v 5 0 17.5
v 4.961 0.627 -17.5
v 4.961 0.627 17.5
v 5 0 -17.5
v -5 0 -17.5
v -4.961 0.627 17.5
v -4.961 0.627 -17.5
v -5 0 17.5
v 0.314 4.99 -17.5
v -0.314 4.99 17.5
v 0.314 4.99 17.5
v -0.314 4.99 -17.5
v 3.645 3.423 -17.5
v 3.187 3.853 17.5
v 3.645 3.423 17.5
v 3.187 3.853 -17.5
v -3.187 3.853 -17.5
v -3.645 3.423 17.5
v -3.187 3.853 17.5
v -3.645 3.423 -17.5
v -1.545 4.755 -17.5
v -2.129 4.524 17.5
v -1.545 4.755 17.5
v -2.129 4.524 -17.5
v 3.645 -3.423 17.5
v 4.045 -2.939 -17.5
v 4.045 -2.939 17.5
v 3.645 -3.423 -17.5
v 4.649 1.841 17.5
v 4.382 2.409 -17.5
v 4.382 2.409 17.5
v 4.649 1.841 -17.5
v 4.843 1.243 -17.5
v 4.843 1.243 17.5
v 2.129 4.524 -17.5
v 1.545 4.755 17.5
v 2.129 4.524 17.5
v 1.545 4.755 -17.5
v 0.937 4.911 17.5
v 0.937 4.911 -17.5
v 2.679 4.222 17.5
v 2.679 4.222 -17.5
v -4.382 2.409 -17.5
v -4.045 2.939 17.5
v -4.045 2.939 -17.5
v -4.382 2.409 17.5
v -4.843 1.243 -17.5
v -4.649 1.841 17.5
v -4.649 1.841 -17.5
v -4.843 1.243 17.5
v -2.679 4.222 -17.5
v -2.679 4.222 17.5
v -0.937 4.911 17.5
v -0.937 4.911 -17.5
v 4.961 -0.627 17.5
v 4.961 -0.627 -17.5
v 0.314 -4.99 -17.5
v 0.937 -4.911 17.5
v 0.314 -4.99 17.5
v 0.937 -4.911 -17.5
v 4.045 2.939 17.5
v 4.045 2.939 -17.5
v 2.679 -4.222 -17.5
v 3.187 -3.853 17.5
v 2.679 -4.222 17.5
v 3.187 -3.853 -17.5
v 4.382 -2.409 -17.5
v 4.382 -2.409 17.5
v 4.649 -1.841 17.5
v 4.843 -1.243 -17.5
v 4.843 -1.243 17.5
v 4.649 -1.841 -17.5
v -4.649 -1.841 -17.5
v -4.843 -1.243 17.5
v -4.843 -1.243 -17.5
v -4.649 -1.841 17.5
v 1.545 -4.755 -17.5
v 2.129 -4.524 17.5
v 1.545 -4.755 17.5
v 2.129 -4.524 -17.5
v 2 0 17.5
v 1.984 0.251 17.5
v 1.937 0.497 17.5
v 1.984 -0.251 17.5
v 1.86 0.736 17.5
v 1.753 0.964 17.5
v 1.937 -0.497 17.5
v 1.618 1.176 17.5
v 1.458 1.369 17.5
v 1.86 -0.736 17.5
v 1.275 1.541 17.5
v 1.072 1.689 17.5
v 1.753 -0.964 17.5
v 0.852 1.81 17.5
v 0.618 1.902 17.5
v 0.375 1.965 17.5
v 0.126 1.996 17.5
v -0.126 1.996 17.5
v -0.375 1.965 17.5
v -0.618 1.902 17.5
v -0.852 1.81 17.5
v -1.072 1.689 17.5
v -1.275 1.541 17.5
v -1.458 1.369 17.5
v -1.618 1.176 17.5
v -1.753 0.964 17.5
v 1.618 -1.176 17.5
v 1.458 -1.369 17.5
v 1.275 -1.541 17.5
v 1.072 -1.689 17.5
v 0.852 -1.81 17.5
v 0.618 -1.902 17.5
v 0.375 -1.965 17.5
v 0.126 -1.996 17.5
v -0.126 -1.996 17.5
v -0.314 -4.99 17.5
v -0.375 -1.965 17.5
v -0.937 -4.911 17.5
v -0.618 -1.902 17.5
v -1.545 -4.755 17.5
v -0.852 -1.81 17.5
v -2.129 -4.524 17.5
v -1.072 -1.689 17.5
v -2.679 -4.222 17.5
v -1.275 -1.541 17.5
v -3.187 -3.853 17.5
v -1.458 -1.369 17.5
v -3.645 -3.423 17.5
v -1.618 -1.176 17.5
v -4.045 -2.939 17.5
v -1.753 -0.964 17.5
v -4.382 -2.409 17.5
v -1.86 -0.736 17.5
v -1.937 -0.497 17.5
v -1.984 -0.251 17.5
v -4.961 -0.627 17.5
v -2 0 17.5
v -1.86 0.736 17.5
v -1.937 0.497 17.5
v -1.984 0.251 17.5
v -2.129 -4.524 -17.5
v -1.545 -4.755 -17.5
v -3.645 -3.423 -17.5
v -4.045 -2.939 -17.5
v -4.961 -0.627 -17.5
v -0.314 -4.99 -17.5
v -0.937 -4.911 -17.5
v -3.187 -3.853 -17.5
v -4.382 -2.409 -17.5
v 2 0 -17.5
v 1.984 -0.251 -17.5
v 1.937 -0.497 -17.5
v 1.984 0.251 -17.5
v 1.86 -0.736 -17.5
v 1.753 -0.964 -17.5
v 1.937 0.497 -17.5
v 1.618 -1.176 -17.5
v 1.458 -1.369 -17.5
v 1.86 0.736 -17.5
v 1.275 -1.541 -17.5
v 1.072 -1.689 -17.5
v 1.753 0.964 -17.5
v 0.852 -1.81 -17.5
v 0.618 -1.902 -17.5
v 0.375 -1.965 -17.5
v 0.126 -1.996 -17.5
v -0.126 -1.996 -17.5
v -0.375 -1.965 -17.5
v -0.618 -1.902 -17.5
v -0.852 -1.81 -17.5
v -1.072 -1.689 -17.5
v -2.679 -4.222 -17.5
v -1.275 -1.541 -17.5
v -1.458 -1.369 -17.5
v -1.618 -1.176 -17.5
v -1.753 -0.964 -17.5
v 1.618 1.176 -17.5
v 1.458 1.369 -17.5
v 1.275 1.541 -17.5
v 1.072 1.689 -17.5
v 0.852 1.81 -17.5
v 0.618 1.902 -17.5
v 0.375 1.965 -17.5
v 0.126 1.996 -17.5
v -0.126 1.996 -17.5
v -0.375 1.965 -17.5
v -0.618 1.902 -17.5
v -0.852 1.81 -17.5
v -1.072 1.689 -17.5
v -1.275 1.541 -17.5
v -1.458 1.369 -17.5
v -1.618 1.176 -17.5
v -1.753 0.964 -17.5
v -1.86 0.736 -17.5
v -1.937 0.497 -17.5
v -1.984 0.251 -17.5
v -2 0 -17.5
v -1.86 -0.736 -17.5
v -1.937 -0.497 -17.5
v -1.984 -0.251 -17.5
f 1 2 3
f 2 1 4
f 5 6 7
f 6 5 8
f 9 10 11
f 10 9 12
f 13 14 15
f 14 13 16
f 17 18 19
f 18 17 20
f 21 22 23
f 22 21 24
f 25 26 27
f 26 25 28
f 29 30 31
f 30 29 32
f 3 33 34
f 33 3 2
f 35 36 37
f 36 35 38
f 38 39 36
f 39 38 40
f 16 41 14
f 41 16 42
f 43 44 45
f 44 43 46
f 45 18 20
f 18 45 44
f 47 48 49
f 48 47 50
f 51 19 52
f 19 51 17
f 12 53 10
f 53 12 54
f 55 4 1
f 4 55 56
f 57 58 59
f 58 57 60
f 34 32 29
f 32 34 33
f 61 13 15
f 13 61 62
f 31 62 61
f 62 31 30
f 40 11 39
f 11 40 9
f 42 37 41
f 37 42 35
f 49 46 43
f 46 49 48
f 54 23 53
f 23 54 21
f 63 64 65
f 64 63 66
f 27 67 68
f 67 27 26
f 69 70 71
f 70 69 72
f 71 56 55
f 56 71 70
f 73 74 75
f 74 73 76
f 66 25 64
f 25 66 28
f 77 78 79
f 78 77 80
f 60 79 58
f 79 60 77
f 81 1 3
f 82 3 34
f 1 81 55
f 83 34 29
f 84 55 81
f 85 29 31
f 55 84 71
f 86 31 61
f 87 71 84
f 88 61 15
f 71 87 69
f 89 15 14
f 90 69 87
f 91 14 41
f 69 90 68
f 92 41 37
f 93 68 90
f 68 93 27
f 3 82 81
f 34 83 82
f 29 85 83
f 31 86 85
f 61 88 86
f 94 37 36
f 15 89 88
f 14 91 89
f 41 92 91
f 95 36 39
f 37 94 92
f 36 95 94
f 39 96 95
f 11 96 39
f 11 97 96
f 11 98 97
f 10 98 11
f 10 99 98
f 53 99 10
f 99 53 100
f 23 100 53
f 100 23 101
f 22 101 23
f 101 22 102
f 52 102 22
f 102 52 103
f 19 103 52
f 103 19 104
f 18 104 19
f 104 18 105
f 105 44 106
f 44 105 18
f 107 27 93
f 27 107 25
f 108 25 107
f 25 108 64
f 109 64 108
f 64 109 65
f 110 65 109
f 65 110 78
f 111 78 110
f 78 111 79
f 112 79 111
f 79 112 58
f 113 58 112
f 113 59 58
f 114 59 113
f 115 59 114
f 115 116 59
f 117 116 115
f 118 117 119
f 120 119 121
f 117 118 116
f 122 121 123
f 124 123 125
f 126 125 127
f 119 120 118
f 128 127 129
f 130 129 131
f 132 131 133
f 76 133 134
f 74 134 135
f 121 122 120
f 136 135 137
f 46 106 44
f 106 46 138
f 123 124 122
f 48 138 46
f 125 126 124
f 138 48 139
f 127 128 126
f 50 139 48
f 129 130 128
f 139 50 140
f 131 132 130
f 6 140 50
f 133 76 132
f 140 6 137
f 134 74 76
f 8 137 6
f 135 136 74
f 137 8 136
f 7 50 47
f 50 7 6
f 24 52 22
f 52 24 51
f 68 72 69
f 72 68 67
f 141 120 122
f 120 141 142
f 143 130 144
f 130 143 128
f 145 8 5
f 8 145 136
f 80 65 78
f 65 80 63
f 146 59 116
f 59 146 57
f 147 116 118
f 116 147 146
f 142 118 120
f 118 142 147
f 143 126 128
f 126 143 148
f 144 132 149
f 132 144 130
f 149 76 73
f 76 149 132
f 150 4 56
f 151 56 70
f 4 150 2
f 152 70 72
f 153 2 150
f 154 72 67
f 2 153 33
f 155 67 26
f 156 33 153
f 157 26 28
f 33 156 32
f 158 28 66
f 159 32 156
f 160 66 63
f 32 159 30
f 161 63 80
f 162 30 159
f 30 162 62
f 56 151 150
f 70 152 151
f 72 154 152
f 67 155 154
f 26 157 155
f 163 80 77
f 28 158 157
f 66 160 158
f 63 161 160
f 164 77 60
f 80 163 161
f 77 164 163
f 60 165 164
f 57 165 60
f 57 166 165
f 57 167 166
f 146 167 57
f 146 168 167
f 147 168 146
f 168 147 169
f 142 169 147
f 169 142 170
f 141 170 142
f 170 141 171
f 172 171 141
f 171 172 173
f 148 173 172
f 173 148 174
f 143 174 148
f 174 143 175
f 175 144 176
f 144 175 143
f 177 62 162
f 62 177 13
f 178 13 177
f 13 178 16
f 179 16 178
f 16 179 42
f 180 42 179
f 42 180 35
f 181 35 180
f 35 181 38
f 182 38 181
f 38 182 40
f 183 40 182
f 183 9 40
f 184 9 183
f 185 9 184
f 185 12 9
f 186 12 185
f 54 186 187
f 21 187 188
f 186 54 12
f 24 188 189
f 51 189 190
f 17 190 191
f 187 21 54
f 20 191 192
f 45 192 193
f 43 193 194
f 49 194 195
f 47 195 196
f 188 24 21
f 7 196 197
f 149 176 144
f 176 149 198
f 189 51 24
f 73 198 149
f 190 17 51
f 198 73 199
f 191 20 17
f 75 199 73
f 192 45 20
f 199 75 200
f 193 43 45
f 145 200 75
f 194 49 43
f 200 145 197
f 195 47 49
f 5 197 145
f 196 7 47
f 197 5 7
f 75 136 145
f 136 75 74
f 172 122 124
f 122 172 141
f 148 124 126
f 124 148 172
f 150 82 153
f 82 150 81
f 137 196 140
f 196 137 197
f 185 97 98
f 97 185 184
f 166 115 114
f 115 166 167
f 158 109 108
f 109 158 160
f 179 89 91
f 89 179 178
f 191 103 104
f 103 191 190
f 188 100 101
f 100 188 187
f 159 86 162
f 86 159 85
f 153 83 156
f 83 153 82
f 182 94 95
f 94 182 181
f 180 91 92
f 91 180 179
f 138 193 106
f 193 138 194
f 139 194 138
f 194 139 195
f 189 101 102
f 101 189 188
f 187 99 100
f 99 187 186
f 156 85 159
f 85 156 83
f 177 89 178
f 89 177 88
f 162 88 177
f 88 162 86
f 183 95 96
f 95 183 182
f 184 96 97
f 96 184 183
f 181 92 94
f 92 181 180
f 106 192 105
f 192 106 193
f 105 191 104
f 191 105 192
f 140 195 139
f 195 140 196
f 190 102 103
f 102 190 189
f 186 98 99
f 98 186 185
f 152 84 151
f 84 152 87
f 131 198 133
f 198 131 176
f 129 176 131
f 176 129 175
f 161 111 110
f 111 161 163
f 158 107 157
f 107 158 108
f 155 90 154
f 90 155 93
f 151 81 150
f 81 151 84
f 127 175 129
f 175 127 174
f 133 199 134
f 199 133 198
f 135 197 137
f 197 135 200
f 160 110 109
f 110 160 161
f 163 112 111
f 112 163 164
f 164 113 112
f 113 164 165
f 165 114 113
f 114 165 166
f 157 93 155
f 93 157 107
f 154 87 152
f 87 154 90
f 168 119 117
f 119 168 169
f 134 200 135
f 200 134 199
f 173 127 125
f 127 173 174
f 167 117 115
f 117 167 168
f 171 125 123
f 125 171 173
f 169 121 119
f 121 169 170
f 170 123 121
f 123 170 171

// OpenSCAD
$fn = 50;


difference() {
	union() {
		translate(v = [0, 0, -17.5000000000]) {
			cylinder(h = 35, r = 5.0000000000);
		}
	}
	union() {
		translate(v = [0, 0, -100.0000000000]) {
			cylinder(h = 200, r = 2.0000000000);
		}
	}
}
